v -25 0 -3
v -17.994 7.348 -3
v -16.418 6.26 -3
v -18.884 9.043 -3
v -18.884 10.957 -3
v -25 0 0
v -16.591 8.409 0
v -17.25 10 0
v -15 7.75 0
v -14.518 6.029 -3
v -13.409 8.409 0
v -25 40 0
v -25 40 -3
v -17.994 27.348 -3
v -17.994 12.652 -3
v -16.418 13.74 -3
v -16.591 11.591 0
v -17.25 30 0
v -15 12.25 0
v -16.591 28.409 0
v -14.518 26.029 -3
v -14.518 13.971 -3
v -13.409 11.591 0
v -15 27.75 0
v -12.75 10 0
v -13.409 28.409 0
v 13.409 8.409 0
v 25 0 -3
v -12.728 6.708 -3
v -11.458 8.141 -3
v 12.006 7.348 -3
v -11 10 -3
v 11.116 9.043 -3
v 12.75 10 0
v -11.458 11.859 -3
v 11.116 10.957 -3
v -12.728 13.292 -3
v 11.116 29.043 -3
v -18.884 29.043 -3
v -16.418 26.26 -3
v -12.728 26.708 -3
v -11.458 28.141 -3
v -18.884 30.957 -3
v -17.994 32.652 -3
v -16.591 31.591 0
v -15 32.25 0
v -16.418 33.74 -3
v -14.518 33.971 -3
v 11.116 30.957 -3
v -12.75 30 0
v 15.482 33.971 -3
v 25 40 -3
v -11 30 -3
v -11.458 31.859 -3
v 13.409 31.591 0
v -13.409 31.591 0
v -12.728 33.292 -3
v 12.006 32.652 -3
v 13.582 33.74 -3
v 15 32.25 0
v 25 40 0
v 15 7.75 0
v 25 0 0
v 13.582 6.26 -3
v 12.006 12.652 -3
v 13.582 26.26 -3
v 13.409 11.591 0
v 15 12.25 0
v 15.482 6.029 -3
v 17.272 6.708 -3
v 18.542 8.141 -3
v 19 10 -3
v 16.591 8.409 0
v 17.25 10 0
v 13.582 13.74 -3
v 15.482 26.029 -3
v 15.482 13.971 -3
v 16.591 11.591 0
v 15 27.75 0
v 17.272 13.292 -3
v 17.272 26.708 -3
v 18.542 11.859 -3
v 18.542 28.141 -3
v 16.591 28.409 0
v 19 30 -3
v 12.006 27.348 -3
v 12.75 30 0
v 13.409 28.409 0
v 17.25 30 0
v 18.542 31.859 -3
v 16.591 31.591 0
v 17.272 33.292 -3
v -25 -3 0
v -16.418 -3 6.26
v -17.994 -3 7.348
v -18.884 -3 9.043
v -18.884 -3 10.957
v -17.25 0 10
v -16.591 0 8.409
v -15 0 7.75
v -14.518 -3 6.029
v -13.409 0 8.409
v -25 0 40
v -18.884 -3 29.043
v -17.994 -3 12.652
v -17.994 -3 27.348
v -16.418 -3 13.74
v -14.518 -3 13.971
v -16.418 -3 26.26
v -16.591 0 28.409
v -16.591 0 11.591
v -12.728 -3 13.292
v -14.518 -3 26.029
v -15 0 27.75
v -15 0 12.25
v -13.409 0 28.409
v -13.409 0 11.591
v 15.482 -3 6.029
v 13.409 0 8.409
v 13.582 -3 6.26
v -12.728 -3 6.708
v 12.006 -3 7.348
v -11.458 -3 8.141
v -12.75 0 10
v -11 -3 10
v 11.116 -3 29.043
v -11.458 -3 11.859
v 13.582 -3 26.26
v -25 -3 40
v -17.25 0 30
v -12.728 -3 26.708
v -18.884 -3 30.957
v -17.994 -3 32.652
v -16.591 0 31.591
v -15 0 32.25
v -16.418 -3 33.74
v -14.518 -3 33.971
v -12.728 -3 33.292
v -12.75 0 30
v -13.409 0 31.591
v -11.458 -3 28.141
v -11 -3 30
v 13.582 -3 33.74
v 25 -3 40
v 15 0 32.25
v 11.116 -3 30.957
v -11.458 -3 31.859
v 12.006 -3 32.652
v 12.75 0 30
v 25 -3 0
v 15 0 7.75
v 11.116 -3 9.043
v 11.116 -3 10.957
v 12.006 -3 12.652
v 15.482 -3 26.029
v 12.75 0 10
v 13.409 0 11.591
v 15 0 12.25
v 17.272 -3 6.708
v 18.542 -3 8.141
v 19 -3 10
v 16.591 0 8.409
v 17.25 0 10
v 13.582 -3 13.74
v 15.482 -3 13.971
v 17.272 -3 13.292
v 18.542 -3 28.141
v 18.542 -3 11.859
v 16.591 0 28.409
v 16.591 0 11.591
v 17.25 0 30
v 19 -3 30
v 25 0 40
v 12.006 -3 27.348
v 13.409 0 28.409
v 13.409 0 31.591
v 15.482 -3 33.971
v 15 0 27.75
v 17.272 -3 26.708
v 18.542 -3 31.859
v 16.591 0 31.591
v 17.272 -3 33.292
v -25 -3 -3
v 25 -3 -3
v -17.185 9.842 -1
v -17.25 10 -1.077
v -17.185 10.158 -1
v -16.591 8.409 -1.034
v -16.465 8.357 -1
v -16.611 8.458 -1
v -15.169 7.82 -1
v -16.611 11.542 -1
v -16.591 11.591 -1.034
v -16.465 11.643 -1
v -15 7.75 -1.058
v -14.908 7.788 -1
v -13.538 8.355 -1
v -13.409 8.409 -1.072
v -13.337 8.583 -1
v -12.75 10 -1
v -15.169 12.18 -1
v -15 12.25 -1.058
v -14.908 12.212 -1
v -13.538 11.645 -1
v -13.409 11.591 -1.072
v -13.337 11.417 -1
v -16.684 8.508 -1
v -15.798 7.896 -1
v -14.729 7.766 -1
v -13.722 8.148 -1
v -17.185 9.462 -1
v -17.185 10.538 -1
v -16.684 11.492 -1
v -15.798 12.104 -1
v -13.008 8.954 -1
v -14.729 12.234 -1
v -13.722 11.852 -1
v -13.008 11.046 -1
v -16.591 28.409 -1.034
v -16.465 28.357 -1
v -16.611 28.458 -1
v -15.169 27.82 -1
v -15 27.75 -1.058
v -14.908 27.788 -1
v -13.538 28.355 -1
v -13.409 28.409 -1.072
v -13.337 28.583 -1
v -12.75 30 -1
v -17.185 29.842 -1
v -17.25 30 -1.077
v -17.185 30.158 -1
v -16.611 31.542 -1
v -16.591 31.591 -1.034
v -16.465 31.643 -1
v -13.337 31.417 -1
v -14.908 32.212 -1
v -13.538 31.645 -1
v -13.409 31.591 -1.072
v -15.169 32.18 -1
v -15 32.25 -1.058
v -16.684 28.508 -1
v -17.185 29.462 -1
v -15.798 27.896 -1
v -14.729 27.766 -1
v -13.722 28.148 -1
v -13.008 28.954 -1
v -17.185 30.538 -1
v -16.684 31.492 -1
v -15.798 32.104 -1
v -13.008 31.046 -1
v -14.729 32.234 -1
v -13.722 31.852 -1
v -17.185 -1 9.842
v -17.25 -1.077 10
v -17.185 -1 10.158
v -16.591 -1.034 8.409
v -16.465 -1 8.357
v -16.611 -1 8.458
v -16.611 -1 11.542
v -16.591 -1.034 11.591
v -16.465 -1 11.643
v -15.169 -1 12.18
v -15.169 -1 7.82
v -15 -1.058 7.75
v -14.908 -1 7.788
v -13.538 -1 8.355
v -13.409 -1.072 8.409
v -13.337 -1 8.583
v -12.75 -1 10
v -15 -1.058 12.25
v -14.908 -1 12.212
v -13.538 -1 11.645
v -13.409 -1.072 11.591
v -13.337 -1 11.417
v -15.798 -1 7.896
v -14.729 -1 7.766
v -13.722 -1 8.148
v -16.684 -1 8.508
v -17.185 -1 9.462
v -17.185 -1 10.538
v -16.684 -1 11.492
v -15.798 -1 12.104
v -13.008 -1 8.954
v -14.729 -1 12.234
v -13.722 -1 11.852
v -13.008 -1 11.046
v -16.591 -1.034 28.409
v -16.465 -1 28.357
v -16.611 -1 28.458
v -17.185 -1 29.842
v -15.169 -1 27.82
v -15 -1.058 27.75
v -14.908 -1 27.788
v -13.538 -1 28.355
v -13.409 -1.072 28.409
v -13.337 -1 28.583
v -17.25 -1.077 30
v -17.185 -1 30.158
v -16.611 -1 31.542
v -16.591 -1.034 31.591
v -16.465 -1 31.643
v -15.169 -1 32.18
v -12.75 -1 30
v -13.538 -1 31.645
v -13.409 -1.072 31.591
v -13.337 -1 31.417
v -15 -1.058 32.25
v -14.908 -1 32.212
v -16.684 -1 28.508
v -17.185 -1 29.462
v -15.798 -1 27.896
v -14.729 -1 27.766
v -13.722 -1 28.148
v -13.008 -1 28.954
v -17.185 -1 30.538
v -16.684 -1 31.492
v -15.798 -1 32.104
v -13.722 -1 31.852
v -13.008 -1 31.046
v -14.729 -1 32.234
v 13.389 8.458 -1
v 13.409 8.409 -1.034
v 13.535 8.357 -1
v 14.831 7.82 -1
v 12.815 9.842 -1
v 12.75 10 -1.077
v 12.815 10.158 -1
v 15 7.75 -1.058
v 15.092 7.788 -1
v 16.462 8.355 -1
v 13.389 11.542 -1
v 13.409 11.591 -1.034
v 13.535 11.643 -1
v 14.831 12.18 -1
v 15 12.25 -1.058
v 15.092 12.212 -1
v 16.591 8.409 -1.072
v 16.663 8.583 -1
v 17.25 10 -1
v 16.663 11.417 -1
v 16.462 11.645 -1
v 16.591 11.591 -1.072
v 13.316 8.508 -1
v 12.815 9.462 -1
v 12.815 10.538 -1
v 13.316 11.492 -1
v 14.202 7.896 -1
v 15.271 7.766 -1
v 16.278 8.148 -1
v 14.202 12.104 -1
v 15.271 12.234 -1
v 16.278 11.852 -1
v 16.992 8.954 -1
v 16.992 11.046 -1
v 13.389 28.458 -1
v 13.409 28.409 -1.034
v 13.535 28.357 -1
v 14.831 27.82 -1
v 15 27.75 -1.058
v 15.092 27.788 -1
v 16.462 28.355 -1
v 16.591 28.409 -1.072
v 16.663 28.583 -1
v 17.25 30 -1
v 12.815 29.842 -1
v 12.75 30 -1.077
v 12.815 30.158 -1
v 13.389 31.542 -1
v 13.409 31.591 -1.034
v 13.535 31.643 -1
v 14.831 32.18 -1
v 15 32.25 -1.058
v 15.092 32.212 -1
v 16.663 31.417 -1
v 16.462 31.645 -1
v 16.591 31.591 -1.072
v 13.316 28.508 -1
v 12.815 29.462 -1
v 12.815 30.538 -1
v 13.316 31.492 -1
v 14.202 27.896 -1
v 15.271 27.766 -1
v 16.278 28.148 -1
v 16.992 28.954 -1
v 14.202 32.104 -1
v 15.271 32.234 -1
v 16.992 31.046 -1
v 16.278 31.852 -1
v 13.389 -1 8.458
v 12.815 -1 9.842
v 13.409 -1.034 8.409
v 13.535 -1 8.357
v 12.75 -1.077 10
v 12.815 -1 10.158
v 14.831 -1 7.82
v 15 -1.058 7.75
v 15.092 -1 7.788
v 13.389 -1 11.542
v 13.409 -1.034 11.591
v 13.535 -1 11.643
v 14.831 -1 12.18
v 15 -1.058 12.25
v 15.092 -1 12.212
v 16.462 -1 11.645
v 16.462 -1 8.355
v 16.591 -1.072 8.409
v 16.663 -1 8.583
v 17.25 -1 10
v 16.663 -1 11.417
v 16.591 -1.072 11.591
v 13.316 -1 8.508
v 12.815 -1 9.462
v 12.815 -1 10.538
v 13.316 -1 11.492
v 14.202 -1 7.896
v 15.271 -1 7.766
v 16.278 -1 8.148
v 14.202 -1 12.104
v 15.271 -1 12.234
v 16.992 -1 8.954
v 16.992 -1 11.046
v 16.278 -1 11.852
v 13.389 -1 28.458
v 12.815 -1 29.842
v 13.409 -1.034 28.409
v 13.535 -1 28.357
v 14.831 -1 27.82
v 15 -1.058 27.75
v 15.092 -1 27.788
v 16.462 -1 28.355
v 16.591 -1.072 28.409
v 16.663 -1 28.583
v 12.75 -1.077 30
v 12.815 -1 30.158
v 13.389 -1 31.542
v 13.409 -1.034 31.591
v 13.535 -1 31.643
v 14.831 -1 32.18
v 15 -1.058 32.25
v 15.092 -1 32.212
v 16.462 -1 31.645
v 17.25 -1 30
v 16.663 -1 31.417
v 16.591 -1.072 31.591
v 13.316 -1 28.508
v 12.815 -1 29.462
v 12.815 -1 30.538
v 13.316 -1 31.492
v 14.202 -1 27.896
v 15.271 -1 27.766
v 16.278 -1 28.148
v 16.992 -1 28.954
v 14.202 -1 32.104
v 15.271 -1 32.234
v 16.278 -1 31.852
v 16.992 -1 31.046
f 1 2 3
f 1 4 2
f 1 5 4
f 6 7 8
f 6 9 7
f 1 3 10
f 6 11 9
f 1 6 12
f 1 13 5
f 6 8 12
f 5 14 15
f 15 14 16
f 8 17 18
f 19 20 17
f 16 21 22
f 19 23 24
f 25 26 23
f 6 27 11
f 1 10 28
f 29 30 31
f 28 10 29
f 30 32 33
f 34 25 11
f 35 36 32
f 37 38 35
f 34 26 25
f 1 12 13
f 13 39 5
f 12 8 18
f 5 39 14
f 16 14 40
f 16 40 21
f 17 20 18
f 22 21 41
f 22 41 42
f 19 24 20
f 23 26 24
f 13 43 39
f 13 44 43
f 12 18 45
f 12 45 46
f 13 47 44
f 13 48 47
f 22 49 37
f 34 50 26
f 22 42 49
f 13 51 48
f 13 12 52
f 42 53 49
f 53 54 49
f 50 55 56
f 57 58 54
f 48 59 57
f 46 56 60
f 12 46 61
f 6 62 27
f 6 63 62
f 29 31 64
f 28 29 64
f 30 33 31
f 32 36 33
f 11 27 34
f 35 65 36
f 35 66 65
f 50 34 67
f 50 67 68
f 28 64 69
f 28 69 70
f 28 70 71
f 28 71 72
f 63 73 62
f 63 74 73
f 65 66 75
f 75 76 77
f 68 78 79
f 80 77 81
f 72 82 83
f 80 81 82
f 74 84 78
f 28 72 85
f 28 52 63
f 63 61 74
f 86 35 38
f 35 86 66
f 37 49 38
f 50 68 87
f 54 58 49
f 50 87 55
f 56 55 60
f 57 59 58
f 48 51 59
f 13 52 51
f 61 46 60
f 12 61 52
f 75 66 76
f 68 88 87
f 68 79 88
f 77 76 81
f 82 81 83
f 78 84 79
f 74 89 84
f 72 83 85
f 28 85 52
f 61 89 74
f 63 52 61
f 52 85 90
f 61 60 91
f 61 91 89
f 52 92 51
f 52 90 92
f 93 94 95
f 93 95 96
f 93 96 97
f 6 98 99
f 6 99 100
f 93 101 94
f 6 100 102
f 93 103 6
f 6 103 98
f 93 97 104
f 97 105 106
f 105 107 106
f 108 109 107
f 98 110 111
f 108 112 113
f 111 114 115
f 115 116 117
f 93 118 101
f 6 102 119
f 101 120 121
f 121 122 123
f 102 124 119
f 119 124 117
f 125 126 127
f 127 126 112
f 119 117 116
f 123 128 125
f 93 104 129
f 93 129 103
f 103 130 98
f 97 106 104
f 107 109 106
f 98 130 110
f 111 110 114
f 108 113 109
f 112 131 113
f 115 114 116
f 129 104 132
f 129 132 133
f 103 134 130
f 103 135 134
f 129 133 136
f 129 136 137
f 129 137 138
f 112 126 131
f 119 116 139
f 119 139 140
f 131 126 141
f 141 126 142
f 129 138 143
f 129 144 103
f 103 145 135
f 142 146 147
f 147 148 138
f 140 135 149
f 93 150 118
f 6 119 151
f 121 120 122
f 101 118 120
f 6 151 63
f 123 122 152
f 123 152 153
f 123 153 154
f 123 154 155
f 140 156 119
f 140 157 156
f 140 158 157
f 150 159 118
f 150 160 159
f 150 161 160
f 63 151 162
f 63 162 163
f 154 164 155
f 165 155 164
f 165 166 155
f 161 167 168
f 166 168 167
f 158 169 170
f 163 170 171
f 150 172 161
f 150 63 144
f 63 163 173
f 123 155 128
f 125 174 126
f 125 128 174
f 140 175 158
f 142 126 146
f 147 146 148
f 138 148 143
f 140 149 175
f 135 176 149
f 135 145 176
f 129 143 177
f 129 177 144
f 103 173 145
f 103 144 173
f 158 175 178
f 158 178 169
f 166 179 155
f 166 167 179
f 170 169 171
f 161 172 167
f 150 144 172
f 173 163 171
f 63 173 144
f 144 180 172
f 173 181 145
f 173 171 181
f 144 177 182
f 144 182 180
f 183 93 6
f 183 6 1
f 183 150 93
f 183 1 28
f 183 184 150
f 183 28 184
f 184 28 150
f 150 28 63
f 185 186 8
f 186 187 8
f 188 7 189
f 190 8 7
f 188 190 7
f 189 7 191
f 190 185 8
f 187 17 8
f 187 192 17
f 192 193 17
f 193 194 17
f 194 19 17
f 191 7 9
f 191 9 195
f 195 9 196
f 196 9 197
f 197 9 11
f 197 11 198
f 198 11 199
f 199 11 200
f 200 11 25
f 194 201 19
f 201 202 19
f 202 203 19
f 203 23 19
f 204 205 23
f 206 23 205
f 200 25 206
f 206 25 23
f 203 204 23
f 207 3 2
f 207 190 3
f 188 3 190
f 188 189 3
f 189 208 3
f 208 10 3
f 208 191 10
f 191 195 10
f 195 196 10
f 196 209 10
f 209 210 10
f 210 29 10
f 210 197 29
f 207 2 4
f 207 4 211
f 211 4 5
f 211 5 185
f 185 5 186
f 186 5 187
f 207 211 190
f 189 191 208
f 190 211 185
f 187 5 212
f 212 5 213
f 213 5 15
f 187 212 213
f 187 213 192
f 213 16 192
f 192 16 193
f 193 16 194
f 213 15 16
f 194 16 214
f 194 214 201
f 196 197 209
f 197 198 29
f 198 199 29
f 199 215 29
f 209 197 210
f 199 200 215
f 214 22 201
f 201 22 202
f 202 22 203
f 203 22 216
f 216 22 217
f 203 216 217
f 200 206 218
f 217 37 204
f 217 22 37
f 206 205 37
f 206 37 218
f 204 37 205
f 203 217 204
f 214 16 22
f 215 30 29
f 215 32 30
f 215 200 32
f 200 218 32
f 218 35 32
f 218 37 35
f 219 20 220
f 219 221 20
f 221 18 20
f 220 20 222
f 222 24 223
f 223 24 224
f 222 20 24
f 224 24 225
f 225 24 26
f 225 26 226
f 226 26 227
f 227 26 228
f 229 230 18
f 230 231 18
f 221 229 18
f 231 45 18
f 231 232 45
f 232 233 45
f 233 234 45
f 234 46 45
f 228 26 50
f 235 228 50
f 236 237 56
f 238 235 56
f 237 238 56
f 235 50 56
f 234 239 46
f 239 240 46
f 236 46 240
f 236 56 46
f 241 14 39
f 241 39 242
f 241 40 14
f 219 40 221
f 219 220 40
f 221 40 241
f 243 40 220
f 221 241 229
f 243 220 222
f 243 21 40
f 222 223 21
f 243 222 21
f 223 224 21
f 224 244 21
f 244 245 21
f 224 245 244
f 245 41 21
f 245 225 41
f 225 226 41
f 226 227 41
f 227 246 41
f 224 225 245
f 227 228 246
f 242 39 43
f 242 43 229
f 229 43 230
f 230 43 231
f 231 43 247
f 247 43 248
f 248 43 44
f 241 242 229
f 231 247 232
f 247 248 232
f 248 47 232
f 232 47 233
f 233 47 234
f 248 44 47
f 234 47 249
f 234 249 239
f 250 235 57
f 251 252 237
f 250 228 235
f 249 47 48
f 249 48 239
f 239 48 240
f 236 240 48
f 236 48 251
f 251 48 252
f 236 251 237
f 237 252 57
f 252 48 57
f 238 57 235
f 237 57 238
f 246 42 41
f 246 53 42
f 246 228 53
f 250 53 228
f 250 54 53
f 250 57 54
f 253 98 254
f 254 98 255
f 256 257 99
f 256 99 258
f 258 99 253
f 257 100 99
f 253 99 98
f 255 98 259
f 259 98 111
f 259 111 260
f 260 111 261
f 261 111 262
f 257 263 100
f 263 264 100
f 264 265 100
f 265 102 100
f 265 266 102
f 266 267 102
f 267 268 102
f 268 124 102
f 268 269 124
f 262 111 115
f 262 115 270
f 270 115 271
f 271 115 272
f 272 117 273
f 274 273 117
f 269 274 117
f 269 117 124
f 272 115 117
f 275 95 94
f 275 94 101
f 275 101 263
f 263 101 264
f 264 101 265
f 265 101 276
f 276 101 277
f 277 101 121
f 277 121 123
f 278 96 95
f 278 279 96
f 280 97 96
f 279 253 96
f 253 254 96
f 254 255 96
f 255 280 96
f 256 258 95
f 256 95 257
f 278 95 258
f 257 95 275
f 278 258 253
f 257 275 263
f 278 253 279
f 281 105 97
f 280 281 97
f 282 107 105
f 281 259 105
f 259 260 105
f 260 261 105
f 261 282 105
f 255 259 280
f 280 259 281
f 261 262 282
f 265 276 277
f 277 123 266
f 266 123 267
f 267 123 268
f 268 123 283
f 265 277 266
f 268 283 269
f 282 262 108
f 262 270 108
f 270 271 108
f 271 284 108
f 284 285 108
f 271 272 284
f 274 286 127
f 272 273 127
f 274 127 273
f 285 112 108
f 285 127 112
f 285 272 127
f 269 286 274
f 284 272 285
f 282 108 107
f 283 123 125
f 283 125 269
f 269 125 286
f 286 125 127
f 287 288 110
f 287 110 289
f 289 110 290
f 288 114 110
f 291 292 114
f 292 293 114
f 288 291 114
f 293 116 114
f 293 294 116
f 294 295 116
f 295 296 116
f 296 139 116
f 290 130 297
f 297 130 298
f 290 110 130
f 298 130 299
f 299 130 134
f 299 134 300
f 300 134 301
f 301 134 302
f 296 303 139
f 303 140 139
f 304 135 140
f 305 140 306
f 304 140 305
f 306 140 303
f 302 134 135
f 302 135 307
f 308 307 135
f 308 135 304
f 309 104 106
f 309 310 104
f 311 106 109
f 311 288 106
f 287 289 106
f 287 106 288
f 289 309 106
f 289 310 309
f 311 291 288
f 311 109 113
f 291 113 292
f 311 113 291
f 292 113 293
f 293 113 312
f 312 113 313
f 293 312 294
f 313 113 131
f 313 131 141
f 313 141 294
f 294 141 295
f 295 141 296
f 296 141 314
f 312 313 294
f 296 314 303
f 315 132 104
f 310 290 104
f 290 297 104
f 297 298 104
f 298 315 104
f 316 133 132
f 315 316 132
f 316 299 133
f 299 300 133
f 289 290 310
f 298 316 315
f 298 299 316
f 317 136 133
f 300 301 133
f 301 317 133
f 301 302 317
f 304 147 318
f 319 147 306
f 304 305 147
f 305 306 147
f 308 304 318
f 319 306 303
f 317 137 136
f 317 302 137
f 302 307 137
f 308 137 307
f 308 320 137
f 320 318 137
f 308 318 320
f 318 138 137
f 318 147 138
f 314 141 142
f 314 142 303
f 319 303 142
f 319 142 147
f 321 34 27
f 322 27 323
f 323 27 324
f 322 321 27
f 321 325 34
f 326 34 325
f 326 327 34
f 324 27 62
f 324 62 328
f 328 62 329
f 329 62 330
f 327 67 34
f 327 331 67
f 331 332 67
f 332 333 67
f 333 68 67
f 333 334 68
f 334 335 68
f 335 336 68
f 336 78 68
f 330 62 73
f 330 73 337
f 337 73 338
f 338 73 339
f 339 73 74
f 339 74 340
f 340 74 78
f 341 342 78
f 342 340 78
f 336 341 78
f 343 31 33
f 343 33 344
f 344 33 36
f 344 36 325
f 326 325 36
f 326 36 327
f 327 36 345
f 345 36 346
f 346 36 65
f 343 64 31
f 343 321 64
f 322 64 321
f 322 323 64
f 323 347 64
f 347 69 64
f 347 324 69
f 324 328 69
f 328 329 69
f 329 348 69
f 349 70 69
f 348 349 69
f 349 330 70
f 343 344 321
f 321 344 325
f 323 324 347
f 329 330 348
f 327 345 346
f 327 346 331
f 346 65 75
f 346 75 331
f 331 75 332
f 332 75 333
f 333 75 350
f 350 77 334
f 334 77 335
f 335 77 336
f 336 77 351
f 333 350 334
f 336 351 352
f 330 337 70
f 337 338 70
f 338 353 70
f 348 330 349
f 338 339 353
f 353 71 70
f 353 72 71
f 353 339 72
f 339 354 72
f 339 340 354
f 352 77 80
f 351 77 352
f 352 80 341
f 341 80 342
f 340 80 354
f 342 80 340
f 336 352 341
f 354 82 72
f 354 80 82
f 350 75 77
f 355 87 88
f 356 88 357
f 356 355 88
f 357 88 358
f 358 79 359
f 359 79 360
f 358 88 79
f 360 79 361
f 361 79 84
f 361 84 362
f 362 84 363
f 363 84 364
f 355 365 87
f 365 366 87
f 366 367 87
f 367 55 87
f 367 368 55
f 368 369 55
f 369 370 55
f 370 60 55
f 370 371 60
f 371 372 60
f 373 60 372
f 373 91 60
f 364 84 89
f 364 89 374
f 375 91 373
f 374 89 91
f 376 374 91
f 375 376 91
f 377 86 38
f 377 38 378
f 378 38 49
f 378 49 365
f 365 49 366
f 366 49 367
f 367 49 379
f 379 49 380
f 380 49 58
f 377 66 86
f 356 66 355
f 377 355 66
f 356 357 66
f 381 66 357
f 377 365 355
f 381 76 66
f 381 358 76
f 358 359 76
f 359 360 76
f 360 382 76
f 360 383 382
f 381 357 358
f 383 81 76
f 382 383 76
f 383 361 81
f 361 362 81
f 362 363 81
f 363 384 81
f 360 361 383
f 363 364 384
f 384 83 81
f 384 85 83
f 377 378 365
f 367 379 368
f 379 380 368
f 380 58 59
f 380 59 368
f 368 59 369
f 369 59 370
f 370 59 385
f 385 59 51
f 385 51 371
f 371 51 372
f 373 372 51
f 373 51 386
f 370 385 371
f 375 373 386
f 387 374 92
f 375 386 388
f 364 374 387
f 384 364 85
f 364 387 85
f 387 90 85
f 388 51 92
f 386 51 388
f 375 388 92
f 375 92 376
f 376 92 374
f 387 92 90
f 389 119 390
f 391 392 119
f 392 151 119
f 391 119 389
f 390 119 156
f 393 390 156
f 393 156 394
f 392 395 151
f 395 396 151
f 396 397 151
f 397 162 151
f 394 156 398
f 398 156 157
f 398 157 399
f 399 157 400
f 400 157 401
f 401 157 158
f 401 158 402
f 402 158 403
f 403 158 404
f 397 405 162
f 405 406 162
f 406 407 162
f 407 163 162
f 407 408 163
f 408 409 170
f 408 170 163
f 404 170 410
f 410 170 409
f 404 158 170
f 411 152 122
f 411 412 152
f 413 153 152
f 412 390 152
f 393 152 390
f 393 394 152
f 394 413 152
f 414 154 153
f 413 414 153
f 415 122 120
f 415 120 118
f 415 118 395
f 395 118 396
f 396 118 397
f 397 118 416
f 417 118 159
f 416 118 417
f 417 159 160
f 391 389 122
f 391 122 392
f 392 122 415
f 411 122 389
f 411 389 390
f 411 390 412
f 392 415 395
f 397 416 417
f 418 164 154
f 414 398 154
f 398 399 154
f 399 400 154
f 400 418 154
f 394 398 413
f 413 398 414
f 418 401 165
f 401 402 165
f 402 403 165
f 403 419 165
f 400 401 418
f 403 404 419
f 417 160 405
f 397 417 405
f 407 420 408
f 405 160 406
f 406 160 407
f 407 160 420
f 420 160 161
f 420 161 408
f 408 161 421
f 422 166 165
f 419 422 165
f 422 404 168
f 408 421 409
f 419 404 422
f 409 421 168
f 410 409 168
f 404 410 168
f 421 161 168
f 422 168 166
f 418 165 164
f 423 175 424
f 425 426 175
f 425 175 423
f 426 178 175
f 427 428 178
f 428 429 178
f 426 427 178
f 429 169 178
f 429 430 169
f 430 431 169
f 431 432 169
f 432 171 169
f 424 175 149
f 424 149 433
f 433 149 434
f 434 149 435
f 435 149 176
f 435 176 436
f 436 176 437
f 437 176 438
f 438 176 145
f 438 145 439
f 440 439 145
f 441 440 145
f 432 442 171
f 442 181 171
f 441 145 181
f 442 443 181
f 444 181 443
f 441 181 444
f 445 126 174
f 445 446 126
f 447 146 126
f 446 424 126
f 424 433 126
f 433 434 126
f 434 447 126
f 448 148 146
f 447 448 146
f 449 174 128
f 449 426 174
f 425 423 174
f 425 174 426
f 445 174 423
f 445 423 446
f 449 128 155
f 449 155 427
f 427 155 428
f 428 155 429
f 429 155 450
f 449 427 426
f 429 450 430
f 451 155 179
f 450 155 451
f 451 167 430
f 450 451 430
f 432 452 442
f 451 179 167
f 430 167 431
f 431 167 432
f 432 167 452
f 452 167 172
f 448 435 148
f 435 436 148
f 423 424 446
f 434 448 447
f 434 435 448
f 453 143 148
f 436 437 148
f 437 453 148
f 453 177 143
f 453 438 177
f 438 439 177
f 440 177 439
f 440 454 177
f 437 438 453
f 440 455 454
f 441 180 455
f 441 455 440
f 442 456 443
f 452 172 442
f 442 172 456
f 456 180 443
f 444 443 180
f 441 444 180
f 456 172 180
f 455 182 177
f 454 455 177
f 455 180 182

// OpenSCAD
width = 50;
depth = 40;
height = 40;
thickness = 3;

hole_d = 4.5;
countersink_d = 8;
countersink_depth = 2;
edge_inset = 10;
eps = 0.01;

hole_x = [-width / 2 + edge_inset, width / 2 - edge_inset];

difference() {
    union() {
        // 水平フランジ
        translate([-width / 2, 0, -thickness])
            cube([width, depth, thickness]);

        // 垂直フランジ
        translate([-width / 2, -thickness, 0])
            cube([width, thickness, height]);

        // コーナーの接続部
        translate([-width / 2, -thickness, -thickness])
            cube([width, thickness, thickness]);
    }

    for (x = hole_x) {
        // 水平フランジの皿穴（外側は -Z 側）
        for (y = [edge_inset, depth - edge_inset]) {
            translate([x, y, -thickness - eps])
                cylinder(h = thickness + 2 * eps, d = hole_d);

            translate([x, y, -thickness])
                cylinder(h = countersink_depth, d1 = countersink_d, d2 = hole_d);
        }

        // 垂直フランジの皿穴（外側は -Y 側）
        for (z = [edge_inset, height - edge_inset]) {
            translate([x, -thickness - eps, z])
                rotate([-90, 0, 0])
                    cylinder(h = thickness + 2 * eps, d = hole_d);

            translate([x, -thickness, z])
                rotate([-90, 0, 0])
                    cylinder(h = countersink_depth, d1 = countersink_d, d2 = hole_d);
        }
    }
}
